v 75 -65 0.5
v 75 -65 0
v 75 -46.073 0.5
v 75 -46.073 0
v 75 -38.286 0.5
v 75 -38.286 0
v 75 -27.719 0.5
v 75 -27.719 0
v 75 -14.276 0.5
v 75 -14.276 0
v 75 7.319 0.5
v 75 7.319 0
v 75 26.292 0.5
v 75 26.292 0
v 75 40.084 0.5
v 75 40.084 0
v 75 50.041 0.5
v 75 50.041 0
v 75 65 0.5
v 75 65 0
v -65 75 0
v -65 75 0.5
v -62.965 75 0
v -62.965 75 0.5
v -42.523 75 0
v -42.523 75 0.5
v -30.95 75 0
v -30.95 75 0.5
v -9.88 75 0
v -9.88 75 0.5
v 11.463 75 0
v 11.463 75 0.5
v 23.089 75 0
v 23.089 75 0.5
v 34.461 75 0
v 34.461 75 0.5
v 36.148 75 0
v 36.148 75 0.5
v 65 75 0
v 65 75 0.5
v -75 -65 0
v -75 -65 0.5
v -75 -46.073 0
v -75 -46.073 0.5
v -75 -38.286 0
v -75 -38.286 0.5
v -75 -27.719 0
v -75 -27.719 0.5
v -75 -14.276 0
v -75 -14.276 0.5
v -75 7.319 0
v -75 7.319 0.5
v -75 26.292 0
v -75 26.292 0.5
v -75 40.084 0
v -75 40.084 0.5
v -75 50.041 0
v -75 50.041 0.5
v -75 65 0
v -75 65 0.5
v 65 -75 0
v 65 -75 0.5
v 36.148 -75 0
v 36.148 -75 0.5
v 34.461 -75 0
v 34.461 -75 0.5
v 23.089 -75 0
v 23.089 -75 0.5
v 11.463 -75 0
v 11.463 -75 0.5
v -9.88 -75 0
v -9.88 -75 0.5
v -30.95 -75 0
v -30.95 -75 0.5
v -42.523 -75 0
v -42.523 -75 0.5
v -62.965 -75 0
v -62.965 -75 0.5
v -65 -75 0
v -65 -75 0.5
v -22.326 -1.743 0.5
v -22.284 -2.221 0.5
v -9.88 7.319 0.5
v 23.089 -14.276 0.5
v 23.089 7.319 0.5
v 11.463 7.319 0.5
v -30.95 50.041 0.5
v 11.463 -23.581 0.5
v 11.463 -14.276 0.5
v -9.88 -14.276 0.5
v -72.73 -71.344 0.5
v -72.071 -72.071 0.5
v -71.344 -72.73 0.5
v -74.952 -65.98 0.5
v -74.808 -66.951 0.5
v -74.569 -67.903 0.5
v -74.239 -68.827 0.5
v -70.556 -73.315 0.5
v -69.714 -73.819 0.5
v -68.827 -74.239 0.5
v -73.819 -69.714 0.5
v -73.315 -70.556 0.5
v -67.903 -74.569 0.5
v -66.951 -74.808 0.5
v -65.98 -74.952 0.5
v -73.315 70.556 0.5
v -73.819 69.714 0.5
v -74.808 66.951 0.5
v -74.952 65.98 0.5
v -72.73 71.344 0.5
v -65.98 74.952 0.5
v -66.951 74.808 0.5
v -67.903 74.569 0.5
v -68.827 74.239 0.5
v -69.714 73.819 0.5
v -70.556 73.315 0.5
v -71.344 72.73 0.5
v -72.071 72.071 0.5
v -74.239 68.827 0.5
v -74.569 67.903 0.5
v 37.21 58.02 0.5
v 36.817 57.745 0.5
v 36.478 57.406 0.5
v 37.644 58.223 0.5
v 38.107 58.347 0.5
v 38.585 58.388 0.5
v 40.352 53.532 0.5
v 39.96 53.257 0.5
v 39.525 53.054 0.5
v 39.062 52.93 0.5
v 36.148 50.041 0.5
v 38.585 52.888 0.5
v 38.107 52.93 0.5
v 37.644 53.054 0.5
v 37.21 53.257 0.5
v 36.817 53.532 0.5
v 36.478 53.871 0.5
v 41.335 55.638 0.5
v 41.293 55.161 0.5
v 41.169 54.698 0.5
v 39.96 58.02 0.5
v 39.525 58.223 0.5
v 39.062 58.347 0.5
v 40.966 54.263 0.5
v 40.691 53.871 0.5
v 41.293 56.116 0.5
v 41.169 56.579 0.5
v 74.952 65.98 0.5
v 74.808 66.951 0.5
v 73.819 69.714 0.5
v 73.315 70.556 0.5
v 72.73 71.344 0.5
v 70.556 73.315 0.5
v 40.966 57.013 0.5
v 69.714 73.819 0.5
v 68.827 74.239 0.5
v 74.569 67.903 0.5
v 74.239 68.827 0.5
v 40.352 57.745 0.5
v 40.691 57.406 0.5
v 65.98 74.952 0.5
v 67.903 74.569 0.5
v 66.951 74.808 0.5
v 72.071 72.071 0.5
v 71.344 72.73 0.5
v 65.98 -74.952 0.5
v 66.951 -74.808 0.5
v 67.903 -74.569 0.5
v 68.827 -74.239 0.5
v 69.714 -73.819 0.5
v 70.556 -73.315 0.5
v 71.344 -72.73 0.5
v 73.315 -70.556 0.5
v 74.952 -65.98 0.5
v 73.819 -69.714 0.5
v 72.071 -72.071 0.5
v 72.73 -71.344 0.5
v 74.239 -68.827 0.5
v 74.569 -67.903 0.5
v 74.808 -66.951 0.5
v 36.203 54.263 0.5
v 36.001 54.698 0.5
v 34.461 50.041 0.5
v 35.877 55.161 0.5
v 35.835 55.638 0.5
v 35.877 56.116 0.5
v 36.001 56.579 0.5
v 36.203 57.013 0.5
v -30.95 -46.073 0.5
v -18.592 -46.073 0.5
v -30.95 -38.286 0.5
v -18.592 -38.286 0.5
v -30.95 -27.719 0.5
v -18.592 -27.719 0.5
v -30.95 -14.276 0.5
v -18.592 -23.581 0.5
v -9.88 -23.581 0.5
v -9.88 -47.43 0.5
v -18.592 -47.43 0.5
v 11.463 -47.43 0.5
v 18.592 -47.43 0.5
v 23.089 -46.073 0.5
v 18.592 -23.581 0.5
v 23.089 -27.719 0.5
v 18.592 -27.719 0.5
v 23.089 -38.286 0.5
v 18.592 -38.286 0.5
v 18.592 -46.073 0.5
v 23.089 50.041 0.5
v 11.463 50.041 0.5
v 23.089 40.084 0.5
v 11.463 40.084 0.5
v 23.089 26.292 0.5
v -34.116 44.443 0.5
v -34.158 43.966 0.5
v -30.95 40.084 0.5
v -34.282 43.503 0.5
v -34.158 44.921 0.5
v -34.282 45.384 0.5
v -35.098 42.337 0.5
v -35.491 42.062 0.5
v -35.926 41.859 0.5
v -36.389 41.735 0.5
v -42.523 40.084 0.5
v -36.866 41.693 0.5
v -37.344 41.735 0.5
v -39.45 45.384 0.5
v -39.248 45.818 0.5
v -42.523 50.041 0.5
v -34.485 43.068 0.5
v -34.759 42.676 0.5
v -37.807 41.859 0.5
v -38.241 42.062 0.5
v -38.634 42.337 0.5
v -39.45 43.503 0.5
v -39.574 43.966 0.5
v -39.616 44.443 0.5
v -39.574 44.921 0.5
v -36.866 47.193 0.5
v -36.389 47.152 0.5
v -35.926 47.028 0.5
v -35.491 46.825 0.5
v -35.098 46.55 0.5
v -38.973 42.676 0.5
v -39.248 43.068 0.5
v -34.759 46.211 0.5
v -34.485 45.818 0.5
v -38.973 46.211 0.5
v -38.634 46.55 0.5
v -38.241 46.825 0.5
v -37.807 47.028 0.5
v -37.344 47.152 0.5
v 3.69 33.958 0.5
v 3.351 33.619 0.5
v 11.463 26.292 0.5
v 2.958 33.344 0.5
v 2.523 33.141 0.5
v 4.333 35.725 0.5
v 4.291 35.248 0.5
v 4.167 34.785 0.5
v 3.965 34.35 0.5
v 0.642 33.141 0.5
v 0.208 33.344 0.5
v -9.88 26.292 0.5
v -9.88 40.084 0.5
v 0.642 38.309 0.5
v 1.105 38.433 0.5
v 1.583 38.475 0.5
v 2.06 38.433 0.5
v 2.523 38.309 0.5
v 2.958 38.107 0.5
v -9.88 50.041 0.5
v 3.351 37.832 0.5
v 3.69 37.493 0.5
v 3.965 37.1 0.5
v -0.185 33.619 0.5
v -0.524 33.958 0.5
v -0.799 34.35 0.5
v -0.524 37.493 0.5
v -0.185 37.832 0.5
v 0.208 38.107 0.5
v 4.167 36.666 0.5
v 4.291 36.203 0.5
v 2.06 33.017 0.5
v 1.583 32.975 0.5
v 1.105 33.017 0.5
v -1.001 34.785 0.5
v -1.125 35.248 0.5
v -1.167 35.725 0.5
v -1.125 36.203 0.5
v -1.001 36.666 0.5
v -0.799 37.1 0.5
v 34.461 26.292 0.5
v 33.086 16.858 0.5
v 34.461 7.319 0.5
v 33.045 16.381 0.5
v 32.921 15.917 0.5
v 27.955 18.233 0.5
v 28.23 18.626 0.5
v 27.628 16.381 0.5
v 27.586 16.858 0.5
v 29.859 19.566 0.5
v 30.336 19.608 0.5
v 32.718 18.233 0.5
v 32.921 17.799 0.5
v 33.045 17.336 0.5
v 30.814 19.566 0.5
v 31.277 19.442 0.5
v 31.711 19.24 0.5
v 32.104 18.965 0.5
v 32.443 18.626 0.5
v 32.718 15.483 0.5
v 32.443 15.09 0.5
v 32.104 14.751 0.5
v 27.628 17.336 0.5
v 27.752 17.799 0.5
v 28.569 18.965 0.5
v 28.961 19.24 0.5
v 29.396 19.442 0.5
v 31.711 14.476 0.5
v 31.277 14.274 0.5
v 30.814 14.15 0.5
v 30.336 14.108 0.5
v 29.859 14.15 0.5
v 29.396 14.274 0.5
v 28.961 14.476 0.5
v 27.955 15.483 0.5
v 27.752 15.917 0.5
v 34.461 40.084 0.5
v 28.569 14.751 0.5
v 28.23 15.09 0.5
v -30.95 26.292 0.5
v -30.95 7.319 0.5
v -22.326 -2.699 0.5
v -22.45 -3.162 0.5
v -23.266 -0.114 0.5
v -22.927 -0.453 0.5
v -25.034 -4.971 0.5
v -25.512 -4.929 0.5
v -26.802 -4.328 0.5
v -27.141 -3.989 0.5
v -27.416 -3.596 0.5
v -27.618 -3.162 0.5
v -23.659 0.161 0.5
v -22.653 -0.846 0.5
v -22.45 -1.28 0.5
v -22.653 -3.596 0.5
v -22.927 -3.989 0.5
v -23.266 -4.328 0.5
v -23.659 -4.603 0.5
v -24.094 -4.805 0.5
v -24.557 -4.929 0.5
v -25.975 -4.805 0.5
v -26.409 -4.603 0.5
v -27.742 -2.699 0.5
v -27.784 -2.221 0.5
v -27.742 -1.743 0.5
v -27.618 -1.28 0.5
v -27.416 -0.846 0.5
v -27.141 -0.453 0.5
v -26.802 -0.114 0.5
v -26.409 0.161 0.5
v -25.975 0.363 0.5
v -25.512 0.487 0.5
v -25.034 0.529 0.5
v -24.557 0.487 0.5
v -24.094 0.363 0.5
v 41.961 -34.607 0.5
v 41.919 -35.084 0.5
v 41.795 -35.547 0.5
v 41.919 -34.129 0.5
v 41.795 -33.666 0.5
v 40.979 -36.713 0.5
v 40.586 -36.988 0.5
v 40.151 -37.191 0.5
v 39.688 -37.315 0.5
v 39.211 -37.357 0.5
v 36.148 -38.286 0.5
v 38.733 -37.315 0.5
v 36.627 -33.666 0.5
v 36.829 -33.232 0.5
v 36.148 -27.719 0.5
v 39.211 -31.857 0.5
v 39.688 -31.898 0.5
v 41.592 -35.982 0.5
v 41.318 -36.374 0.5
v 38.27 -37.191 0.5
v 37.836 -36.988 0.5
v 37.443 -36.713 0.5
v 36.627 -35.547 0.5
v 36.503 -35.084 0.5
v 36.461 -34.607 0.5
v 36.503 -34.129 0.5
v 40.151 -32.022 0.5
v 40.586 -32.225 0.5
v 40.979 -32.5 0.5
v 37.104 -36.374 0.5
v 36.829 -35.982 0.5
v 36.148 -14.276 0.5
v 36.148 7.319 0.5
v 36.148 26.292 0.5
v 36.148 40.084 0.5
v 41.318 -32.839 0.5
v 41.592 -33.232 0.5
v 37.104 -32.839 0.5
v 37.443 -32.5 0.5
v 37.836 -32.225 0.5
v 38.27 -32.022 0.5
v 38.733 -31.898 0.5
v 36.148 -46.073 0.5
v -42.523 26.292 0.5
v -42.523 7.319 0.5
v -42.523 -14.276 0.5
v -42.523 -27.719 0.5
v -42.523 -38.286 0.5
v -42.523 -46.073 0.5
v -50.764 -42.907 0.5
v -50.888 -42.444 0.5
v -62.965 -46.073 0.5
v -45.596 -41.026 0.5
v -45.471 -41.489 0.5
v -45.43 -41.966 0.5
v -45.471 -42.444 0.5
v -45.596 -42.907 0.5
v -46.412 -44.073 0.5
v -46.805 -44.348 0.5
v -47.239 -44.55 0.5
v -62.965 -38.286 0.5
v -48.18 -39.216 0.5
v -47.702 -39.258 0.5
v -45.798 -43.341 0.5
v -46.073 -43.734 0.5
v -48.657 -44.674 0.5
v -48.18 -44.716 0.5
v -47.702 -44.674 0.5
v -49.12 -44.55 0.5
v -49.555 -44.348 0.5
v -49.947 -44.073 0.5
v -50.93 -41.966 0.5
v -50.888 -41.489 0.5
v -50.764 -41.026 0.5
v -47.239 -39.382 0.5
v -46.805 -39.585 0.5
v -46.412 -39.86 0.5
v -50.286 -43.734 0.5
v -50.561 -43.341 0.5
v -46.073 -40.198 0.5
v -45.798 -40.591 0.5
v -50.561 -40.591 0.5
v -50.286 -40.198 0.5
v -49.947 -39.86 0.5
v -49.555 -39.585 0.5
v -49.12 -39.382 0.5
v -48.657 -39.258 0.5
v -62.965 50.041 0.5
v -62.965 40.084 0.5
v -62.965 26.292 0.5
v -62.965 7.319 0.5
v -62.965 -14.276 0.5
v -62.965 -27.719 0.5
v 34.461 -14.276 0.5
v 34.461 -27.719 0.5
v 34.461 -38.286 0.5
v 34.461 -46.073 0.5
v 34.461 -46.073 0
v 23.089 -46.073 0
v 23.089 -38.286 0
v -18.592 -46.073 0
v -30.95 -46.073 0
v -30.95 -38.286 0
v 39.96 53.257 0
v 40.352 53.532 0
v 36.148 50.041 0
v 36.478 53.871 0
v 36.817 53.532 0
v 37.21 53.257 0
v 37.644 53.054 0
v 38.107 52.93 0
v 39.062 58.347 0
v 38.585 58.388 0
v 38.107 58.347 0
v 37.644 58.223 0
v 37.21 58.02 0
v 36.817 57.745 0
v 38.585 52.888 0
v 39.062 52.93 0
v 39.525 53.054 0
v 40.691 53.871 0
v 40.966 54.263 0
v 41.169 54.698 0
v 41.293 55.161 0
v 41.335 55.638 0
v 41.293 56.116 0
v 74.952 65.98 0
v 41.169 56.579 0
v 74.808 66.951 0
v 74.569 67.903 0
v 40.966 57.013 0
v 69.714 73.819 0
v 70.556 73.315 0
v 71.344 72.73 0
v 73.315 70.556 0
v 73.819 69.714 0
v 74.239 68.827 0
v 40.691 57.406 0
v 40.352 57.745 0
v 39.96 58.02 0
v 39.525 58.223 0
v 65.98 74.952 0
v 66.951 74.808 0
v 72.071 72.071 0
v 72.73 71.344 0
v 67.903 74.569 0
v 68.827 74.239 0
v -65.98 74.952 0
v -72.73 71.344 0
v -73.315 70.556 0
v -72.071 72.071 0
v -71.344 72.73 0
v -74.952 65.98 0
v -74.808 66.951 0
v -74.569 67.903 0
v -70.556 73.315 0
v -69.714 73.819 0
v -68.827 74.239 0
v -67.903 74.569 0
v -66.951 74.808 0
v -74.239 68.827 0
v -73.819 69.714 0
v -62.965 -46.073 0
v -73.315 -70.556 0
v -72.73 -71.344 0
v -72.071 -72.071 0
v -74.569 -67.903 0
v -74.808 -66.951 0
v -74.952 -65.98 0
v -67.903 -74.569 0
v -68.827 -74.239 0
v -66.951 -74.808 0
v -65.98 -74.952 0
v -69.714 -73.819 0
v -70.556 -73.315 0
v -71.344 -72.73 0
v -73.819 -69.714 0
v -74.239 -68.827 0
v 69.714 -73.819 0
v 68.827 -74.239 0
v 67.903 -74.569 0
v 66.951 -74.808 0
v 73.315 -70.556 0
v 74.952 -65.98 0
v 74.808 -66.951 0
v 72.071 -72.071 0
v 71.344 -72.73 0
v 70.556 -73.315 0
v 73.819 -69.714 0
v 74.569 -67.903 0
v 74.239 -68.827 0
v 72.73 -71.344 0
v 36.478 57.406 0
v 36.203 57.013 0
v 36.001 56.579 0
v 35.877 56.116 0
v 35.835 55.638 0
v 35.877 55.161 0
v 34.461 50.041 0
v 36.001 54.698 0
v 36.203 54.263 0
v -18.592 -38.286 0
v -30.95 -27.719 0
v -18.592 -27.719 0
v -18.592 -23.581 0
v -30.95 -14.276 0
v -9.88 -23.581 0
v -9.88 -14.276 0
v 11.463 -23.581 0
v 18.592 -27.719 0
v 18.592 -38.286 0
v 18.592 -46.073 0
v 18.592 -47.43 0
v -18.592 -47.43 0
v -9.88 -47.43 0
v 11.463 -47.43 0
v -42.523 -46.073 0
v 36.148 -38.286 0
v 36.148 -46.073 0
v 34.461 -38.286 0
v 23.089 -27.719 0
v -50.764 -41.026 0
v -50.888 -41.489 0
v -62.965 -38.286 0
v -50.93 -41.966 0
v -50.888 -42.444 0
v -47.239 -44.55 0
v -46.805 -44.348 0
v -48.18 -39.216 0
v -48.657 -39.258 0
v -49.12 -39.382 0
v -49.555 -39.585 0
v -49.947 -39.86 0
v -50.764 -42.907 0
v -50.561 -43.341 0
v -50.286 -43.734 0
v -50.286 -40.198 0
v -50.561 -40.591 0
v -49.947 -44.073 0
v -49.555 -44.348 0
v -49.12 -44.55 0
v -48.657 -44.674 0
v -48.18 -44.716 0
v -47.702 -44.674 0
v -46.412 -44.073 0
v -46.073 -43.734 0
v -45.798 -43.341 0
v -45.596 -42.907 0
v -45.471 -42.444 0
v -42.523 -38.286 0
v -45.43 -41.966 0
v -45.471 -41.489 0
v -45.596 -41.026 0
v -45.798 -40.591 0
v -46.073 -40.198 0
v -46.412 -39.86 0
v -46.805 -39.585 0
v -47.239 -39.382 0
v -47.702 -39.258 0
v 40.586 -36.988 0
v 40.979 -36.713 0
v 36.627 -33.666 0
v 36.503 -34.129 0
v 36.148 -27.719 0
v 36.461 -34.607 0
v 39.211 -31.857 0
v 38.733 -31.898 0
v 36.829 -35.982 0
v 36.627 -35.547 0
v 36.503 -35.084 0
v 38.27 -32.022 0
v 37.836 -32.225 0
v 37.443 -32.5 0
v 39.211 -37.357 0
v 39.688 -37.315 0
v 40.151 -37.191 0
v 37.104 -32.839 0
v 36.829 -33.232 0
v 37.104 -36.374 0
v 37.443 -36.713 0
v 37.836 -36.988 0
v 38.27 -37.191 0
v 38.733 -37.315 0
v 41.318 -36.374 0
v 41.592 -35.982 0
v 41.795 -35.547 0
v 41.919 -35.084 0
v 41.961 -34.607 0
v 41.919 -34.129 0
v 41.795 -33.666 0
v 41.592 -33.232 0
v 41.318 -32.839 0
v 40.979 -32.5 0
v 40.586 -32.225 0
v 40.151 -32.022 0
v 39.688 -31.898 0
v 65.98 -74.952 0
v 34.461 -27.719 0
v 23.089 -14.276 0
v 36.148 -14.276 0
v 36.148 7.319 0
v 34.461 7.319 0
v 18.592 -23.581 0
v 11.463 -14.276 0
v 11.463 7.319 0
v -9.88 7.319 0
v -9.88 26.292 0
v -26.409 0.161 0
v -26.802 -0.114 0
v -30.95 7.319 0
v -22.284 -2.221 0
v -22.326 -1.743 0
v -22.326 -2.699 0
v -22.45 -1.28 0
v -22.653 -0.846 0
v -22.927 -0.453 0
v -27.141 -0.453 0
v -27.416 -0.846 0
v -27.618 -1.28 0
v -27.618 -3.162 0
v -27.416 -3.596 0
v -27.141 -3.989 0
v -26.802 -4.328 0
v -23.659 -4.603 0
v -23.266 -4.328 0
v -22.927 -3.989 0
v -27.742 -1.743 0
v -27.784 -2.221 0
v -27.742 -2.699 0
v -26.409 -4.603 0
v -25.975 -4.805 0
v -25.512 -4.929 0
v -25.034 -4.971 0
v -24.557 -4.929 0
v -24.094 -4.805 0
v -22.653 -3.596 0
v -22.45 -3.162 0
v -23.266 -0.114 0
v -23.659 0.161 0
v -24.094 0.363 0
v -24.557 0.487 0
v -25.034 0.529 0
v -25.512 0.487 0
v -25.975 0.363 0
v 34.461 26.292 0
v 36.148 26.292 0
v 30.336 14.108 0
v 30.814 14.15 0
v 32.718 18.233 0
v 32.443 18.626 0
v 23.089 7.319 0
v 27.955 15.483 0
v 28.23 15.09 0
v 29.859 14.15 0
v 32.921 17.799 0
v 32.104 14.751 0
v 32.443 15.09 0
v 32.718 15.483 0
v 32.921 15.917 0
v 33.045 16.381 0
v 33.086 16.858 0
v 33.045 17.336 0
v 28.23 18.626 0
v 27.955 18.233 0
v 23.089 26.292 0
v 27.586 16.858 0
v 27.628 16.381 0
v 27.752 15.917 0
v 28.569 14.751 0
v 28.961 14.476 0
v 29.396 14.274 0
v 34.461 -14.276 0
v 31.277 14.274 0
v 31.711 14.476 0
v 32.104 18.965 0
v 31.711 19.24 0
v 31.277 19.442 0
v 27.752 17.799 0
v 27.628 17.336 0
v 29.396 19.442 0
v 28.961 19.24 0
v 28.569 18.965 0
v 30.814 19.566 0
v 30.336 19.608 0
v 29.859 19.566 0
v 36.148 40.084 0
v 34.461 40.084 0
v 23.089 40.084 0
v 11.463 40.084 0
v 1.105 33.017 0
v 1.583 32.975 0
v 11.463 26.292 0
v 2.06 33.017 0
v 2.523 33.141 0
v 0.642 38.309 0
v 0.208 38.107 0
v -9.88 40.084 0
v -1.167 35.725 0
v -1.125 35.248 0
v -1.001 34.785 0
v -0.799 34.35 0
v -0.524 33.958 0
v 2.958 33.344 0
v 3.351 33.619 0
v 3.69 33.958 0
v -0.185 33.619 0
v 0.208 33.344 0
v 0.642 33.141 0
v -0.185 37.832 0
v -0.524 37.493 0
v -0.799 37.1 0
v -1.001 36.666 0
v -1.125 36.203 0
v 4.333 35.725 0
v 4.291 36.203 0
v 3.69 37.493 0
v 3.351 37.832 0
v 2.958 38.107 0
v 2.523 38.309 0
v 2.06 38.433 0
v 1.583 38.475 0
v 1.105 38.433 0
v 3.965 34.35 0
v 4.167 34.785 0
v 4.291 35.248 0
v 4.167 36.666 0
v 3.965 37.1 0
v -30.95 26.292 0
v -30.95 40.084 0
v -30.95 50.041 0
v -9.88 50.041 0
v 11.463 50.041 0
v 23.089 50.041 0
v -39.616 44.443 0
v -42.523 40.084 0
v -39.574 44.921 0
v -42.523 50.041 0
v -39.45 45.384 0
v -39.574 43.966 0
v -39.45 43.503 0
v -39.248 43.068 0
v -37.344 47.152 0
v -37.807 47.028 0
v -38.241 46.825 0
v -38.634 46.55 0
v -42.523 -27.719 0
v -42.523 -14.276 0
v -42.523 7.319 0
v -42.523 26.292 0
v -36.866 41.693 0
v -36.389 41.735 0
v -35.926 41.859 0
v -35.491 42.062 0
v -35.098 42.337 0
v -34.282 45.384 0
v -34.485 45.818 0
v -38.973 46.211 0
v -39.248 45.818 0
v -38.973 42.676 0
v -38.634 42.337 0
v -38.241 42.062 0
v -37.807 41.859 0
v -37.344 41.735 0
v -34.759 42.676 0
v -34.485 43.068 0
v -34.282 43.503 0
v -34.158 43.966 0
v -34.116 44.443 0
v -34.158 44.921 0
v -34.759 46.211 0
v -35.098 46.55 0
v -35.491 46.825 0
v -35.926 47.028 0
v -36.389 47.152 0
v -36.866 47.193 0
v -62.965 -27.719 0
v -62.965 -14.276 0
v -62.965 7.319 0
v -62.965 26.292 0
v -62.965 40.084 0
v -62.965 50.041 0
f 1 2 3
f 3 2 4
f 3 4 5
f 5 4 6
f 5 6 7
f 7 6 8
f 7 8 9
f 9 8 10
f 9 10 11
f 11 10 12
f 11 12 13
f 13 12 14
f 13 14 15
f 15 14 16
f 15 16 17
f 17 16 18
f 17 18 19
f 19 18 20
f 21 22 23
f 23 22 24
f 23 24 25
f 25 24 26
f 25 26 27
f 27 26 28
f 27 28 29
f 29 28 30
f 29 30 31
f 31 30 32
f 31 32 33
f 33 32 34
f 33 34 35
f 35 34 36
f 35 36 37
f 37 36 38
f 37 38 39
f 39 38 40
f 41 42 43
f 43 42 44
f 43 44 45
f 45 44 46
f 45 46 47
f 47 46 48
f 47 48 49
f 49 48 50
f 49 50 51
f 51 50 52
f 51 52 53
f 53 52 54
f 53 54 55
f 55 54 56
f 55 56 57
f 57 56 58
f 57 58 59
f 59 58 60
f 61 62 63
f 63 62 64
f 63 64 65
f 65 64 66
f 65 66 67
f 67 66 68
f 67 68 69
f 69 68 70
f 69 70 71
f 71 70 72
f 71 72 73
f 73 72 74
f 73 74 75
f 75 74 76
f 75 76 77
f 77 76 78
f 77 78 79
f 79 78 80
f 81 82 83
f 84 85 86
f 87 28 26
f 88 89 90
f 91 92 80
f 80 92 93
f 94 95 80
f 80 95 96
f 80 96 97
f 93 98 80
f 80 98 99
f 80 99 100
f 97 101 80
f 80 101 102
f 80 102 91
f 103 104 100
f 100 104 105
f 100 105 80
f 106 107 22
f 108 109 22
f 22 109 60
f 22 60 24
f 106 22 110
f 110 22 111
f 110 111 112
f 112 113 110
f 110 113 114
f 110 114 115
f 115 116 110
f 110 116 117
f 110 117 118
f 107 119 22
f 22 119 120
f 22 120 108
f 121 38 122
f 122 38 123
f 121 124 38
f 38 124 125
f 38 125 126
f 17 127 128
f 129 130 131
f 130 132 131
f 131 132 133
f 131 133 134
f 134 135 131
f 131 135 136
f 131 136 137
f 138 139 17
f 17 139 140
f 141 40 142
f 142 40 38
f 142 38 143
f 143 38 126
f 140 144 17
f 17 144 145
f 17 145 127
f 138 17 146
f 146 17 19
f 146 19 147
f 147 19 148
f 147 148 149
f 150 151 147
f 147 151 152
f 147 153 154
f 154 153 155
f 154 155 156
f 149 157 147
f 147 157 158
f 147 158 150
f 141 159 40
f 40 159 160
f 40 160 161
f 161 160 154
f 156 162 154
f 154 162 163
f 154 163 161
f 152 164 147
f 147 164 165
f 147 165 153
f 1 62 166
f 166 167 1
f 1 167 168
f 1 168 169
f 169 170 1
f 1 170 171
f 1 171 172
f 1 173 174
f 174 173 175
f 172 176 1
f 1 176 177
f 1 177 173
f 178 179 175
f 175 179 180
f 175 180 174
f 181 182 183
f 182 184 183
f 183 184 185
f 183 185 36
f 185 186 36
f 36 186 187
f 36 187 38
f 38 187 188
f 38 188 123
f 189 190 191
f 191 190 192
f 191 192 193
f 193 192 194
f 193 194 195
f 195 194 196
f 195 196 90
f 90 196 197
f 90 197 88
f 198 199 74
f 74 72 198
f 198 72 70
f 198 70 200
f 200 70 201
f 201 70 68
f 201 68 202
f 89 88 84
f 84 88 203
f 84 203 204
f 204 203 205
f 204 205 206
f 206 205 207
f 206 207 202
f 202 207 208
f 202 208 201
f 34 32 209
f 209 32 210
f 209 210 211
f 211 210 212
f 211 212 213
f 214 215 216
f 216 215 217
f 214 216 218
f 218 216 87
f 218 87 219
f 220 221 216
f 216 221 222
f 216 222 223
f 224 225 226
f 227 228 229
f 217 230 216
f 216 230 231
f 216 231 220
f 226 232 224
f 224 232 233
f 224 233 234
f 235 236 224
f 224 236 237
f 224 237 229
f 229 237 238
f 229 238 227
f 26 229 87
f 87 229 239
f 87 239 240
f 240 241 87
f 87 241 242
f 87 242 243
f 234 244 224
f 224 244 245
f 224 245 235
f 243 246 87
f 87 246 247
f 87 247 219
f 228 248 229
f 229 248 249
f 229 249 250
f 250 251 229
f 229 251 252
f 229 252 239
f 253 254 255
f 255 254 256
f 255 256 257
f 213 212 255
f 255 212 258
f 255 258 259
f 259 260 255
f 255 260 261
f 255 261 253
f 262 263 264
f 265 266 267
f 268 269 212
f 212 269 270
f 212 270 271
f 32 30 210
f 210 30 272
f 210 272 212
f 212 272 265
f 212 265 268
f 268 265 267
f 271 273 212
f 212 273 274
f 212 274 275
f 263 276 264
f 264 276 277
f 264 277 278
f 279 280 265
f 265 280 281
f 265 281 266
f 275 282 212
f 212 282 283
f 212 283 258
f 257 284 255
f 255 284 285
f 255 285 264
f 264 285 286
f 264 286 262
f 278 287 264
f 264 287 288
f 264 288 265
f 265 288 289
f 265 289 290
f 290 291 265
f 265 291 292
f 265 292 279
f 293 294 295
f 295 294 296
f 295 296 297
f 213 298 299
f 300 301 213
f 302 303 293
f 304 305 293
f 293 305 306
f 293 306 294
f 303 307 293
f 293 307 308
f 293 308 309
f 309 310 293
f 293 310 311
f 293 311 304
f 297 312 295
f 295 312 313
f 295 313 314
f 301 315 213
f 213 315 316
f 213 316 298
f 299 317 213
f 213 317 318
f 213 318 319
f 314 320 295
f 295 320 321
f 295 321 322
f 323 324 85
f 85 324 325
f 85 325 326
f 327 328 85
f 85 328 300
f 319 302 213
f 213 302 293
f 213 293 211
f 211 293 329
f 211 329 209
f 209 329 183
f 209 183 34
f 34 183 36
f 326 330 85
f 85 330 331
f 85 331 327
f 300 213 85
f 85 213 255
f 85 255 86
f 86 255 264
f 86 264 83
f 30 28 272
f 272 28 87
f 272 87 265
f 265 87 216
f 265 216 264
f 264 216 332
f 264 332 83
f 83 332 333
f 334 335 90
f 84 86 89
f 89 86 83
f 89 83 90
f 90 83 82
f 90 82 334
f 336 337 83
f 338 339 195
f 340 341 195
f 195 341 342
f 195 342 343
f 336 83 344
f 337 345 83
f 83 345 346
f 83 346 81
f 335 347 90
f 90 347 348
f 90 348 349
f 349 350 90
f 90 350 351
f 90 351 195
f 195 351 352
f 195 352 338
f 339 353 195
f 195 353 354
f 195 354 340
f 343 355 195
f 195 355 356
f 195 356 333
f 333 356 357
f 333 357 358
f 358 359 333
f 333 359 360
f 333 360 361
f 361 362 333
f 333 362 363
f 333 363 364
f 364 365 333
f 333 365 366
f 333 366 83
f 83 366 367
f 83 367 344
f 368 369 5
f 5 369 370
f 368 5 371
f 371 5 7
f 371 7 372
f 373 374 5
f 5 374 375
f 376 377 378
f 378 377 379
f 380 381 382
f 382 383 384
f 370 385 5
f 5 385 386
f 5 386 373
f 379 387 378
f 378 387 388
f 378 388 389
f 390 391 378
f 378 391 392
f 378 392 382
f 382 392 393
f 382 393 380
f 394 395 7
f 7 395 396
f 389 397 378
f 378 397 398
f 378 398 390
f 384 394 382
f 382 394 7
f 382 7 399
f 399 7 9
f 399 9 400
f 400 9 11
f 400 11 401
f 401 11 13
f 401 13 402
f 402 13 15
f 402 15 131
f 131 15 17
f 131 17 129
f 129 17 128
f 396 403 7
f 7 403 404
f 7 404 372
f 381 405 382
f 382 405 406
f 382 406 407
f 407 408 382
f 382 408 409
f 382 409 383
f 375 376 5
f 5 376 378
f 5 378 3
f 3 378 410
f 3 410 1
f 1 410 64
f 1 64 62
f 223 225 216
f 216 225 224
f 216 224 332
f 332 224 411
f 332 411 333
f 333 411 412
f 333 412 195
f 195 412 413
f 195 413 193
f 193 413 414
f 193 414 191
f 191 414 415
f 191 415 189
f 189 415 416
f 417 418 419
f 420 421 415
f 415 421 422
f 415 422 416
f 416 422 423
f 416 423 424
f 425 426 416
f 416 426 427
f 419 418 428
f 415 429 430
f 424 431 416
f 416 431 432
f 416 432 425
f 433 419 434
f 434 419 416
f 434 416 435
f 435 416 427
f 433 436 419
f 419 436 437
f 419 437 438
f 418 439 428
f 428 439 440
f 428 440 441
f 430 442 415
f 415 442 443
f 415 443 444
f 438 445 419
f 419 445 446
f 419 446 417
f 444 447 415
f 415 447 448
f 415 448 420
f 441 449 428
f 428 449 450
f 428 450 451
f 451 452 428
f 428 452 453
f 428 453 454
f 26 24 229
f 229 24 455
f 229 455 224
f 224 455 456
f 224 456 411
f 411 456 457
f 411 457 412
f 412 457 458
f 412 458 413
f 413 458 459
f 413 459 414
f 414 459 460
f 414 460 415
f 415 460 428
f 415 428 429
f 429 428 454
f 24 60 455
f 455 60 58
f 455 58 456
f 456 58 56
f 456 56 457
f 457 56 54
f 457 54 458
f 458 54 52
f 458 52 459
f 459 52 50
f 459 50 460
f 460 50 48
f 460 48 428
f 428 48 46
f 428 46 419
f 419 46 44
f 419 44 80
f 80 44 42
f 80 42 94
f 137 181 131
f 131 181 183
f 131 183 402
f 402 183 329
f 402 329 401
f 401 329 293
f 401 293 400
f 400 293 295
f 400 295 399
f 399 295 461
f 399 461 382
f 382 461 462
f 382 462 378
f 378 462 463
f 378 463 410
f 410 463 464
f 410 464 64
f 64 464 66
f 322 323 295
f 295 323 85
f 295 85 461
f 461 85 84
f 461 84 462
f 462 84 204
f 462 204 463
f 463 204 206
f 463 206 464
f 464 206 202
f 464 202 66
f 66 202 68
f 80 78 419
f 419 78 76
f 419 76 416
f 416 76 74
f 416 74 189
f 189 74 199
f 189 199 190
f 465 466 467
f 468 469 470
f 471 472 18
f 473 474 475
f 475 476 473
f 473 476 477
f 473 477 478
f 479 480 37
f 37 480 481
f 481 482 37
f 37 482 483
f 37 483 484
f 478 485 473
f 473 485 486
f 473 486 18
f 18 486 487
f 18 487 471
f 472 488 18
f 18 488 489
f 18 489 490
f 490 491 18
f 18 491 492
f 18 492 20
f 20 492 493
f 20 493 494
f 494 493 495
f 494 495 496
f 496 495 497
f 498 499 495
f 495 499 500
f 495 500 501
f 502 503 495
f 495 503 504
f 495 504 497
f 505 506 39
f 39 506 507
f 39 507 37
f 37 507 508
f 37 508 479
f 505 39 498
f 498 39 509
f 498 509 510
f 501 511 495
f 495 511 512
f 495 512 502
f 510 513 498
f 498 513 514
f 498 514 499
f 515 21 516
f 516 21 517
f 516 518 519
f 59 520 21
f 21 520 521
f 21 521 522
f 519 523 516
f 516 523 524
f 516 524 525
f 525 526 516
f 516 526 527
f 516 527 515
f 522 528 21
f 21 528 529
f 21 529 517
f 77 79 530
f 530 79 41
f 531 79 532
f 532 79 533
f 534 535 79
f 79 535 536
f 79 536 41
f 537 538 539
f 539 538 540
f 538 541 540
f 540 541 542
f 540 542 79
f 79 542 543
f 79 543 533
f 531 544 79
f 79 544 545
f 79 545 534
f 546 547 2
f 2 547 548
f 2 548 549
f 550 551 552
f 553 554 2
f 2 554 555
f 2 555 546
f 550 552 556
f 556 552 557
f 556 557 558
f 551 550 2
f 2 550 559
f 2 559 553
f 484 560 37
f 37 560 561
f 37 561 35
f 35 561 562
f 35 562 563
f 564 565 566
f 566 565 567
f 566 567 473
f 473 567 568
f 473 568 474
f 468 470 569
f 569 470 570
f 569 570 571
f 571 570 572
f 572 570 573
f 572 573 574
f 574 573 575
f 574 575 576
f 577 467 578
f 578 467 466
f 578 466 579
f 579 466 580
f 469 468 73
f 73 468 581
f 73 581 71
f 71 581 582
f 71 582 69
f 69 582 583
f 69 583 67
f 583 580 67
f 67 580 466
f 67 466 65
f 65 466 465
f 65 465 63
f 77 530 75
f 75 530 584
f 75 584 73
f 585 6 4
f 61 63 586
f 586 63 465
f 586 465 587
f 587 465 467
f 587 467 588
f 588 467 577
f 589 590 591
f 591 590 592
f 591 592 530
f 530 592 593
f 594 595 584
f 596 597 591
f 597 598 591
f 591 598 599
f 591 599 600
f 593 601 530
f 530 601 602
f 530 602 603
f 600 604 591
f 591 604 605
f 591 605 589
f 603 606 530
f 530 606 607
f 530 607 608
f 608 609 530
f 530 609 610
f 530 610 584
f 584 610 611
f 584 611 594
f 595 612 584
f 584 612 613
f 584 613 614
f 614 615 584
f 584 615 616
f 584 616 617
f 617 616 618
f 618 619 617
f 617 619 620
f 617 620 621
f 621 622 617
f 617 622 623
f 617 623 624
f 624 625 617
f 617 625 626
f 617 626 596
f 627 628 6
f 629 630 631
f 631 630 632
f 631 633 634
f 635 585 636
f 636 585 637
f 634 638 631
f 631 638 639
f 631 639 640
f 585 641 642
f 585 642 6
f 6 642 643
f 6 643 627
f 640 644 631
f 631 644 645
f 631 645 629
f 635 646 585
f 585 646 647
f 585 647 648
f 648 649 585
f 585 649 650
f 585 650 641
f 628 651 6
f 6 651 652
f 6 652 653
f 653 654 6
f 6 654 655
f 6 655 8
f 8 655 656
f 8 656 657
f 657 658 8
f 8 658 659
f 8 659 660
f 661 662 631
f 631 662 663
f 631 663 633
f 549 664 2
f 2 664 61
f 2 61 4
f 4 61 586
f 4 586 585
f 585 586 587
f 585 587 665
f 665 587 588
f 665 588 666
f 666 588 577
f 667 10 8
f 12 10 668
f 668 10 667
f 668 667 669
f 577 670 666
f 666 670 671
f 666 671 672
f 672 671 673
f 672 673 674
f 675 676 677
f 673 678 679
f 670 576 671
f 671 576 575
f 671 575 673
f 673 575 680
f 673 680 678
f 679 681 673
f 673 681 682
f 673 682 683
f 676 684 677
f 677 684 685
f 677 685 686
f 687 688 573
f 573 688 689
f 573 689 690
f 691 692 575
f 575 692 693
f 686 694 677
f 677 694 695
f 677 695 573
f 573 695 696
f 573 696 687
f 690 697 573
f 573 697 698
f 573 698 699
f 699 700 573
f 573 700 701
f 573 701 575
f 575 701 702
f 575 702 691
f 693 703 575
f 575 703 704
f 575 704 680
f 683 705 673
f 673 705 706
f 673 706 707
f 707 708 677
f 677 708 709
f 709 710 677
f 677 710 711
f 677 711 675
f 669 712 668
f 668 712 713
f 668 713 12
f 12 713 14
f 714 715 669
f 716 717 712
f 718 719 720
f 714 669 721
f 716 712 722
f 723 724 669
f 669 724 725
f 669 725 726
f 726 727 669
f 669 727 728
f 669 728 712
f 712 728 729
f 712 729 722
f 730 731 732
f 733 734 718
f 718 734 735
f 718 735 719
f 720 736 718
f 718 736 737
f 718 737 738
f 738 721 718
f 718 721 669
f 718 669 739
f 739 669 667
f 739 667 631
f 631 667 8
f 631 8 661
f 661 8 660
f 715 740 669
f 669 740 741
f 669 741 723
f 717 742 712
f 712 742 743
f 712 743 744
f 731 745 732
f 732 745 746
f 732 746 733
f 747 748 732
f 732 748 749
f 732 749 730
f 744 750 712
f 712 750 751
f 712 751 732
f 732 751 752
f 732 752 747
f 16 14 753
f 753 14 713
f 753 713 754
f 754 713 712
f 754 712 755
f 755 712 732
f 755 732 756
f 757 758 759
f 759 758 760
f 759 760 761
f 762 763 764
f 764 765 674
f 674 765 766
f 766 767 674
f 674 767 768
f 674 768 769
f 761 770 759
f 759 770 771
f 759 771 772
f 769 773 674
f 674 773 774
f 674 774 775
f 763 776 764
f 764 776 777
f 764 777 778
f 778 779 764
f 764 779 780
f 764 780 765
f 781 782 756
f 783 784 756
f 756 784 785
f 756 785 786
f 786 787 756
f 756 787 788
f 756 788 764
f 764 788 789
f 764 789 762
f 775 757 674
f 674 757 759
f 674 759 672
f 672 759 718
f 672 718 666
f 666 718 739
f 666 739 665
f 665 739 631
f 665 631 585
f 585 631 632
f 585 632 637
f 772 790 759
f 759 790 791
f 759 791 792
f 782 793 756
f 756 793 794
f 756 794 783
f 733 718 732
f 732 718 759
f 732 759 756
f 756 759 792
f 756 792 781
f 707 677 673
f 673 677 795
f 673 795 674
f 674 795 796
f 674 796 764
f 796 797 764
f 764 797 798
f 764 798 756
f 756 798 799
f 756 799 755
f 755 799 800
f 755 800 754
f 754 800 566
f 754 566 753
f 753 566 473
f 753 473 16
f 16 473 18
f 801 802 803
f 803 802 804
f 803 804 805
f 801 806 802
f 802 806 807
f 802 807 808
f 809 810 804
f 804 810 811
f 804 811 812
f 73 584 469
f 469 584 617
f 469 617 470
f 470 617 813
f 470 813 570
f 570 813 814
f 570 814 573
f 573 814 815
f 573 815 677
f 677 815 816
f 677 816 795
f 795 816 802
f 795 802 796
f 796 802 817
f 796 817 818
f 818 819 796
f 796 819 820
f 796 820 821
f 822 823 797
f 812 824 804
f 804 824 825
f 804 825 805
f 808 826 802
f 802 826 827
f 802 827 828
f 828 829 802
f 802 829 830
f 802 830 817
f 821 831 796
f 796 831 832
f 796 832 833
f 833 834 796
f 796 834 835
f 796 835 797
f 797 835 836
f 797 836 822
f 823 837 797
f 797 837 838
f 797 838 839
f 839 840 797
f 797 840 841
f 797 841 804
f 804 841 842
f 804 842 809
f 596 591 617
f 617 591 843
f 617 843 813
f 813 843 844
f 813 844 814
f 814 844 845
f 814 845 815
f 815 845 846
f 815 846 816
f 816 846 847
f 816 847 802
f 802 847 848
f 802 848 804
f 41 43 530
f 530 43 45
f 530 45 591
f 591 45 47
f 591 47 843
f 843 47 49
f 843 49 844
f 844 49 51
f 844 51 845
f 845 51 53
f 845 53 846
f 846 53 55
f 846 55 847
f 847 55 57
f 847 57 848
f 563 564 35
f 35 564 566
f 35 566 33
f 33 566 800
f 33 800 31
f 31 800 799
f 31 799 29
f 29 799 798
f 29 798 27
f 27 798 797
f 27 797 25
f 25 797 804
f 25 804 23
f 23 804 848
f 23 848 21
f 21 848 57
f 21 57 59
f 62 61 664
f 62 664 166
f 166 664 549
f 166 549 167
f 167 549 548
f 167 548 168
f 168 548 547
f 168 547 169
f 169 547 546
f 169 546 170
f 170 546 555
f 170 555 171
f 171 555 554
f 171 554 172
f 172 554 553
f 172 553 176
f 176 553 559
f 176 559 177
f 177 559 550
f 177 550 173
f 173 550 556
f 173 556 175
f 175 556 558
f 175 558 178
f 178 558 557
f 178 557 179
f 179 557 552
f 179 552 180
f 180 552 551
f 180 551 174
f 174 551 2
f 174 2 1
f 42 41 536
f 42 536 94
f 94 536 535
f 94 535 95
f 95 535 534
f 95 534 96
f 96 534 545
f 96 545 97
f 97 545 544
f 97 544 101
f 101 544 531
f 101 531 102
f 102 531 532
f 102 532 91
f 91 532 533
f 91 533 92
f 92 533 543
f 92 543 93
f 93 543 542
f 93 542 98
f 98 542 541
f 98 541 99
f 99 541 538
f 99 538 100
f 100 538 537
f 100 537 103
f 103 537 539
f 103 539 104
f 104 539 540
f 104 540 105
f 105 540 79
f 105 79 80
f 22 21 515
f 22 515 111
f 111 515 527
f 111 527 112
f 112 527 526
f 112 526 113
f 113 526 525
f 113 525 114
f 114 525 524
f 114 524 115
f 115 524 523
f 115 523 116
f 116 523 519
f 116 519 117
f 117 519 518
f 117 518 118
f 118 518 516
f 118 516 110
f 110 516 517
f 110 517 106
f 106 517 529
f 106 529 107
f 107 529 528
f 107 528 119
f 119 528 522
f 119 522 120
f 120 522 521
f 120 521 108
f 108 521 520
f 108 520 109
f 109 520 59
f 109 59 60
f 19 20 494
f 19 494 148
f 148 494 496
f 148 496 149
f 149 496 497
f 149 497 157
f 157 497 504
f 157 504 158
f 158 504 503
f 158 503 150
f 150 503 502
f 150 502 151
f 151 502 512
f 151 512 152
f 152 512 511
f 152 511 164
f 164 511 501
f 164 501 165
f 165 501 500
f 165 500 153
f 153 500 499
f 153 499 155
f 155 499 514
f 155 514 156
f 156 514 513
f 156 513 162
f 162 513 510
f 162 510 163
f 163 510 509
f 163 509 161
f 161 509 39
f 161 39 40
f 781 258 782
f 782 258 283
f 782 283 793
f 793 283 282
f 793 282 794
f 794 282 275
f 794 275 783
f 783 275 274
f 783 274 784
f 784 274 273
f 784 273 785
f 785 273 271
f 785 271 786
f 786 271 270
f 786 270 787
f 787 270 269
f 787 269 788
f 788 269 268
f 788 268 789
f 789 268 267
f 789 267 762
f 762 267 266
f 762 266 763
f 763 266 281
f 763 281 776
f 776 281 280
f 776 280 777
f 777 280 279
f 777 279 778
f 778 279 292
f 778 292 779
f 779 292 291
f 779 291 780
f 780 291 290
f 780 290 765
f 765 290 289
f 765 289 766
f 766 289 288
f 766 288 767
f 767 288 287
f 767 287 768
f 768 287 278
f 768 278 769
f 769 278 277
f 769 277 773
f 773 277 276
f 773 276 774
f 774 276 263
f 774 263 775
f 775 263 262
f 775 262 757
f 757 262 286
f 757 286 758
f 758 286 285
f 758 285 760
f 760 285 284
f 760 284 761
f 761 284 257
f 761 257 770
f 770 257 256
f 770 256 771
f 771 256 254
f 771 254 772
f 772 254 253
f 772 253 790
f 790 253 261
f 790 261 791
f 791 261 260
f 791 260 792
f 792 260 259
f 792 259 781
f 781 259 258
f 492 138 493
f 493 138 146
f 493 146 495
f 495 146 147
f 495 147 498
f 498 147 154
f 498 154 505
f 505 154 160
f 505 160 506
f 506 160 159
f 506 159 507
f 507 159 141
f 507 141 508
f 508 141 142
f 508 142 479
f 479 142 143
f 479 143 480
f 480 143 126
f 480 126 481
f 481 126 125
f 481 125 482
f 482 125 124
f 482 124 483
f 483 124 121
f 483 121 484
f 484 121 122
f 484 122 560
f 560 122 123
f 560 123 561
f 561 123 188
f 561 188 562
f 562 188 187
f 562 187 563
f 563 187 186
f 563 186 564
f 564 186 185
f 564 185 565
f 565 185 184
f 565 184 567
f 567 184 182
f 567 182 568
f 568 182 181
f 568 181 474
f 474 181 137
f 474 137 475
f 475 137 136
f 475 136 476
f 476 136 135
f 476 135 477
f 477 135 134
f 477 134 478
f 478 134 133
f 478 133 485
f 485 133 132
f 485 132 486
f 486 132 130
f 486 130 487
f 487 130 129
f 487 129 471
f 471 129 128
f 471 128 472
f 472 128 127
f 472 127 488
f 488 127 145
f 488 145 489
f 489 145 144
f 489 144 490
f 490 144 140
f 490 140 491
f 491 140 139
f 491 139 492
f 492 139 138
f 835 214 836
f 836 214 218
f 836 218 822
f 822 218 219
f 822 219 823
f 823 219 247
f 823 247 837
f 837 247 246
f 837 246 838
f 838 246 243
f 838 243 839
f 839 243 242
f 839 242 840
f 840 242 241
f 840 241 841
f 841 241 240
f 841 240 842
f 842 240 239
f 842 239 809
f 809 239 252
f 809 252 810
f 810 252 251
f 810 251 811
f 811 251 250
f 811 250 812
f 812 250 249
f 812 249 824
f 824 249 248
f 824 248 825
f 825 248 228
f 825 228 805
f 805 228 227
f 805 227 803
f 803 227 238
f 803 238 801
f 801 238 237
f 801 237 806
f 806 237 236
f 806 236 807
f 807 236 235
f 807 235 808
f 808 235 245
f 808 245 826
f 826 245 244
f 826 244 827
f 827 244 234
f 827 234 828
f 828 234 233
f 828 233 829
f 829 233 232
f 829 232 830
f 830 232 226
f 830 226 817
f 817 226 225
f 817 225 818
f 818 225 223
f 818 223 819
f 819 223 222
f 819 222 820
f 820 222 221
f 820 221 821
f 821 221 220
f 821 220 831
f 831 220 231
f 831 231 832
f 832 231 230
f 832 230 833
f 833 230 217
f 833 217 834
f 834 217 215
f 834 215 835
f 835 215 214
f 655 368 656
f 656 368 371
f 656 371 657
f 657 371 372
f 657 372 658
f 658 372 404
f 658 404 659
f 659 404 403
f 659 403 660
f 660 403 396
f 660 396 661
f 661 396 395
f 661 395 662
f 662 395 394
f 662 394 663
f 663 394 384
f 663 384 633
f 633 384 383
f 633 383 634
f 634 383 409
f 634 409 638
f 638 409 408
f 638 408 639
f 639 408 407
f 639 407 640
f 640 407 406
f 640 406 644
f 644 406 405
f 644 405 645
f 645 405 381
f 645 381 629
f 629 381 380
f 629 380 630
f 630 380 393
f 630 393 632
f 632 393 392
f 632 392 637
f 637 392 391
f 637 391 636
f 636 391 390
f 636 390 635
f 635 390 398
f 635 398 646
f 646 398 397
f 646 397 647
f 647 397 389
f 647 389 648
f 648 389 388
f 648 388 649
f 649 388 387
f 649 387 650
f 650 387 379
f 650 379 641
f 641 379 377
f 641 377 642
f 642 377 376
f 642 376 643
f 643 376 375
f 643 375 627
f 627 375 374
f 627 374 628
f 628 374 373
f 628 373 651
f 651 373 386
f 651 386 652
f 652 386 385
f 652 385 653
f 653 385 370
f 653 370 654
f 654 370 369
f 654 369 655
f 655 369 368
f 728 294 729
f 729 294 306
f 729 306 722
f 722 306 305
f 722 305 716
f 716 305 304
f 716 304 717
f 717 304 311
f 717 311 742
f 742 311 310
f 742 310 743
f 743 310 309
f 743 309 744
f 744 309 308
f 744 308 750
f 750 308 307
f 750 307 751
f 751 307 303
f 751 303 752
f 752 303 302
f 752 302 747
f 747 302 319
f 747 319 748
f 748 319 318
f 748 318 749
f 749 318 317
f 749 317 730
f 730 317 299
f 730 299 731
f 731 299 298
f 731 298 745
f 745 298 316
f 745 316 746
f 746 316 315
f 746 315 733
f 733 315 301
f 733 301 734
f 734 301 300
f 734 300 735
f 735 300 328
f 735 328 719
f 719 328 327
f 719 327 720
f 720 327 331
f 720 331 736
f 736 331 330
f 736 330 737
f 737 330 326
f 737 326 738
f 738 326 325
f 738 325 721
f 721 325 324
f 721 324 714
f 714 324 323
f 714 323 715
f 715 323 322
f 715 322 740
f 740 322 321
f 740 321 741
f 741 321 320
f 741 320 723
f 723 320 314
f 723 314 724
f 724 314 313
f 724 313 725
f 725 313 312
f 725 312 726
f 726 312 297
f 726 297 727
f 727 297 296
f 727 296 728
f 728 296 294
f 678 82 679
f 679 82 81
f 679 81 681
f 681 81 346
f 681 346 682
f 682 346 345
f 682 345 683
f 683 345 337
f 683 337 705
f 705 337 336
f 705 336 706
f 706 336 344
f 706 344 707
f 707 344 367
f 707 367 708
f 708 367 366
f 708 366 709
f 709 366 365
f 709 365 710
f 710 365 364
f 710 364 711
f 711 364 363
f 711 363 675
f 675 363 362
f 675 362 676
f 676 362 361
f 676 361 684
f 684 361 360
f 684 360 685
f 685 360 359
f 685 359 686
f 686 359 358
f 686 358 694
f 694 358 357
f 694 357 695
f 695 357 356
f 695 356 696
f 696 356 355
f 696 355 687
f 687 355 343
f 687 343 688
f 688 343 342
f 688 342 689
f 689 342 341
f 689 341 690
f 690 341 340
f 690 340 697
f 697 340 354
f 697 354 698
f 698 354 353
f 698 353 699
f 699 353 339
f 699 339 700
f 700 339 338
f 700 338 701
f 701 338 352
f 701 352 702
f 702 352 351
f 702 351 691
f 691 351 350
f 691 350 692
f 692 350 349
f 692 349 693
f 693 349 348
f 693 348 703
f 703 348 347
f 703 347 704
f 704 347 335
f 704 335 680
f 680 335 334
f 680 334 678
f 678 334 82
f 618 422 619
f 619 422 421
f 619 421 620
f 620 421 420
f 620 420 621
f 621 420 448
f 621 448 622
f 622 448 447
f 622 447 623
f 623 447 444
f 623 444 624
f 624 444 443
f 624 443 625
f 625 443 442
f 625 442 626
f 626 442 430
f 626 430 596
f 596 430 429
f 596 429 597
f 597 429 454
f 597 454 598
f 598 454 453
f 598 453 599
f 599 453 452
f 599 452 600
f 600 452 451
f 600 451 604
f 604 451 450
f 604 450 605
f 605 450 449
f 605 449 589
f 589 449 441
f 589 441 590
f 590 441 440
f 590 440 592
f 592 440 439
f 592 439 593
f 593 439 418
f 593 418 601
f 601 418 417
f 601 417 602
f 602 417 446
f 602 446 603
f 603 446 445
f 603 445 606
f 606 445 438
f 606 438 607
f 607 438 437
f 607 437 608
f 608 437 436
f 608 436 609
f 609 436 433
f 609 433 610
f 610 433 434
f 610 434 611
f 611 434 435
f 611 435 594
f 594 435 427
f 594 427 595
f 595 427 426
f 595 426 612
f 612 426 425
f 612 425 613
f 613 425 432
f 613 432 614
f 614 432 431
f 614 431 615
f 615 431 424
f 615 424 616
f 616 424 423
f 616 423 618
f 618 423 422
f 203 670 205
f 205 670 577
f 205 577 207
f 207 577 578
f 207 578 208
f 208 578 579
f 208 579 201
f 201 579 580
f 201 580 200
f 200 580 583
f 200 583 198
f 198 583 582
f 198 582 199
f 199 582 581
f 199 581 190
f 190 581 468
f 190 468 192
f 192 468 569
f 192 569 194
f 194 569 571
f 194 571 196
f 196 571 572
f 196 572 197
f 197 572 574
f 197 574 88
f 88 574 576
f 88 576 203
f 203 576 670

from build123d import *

# Parameters (mm, degrees)
SCHIZZO1_W                   = 150
SCHIZZO1_H                   = 150
ESTRUSIONE_ESTRUSIONE1_DEPTH = 0.5
RACCORDO1_R                  = 10
FORO_PER_VITE_M5_1_D         = 5.5
SCHIZZO3_W                   = 37.184364996
SCHIZZO3_H                   = 23.849136367
TAGLIO_ESTRUSIONE1_DEPTH     = 1


with BuildPart() as part:
    # Schizzo1 → Estrusione-Estrusione1 (new body)
    with BuildSketch(Plane.XY):
        Rectangle(SCHIZZO1_W, SCHIZZO1_H)
    extrude(amount=ESTRUSIONE_ESTRUSIONE1_DEPTH)

    # Raccordo1
    raccordo1_edges = [part.edges().sort_by_distance(p)[0] for p in [
        (75, -75, 0.25),
        (-75, -75, 0.25),
        (-75, 75, 0.25),
        (75, 75, 0.25),
    ]]
    fillet(raccordo1_edges, radius=RACCORDO1_R)

    # Foro per Vite M5-1 (through all)
    with Locations(Plane(origin=(-48.17969376, -41.96615453, 0.5), x_dir=(1, 0, 0), z_dir=(0, 0, 1))):
        with Locations((0, 0), (23.145595818, 39.745135108), (78.516154922, 58.824197627), (87.390661123, 7.359607969), (11.313576068, 86.409501177), (86.764478148, 97.604587147), (49.762627912, 77.691347737)):
            Hole(FORO_PER_VITE_M5_1_D / 2)

    # Schizzo3 → Taglio-Estrusione1 (cut)
    with BuildSketch(Plane.XY.offset(0.5)):
        with Locations((0, -35.505311098)):
            Rectangle(SCHIZZO3_W, SCHIZZO3_H)
    extrude(amount=-TAGLIO_ESTRUSIONE1_DEPTH, mode=Mode.SUBTRACT)


solid = part.part
